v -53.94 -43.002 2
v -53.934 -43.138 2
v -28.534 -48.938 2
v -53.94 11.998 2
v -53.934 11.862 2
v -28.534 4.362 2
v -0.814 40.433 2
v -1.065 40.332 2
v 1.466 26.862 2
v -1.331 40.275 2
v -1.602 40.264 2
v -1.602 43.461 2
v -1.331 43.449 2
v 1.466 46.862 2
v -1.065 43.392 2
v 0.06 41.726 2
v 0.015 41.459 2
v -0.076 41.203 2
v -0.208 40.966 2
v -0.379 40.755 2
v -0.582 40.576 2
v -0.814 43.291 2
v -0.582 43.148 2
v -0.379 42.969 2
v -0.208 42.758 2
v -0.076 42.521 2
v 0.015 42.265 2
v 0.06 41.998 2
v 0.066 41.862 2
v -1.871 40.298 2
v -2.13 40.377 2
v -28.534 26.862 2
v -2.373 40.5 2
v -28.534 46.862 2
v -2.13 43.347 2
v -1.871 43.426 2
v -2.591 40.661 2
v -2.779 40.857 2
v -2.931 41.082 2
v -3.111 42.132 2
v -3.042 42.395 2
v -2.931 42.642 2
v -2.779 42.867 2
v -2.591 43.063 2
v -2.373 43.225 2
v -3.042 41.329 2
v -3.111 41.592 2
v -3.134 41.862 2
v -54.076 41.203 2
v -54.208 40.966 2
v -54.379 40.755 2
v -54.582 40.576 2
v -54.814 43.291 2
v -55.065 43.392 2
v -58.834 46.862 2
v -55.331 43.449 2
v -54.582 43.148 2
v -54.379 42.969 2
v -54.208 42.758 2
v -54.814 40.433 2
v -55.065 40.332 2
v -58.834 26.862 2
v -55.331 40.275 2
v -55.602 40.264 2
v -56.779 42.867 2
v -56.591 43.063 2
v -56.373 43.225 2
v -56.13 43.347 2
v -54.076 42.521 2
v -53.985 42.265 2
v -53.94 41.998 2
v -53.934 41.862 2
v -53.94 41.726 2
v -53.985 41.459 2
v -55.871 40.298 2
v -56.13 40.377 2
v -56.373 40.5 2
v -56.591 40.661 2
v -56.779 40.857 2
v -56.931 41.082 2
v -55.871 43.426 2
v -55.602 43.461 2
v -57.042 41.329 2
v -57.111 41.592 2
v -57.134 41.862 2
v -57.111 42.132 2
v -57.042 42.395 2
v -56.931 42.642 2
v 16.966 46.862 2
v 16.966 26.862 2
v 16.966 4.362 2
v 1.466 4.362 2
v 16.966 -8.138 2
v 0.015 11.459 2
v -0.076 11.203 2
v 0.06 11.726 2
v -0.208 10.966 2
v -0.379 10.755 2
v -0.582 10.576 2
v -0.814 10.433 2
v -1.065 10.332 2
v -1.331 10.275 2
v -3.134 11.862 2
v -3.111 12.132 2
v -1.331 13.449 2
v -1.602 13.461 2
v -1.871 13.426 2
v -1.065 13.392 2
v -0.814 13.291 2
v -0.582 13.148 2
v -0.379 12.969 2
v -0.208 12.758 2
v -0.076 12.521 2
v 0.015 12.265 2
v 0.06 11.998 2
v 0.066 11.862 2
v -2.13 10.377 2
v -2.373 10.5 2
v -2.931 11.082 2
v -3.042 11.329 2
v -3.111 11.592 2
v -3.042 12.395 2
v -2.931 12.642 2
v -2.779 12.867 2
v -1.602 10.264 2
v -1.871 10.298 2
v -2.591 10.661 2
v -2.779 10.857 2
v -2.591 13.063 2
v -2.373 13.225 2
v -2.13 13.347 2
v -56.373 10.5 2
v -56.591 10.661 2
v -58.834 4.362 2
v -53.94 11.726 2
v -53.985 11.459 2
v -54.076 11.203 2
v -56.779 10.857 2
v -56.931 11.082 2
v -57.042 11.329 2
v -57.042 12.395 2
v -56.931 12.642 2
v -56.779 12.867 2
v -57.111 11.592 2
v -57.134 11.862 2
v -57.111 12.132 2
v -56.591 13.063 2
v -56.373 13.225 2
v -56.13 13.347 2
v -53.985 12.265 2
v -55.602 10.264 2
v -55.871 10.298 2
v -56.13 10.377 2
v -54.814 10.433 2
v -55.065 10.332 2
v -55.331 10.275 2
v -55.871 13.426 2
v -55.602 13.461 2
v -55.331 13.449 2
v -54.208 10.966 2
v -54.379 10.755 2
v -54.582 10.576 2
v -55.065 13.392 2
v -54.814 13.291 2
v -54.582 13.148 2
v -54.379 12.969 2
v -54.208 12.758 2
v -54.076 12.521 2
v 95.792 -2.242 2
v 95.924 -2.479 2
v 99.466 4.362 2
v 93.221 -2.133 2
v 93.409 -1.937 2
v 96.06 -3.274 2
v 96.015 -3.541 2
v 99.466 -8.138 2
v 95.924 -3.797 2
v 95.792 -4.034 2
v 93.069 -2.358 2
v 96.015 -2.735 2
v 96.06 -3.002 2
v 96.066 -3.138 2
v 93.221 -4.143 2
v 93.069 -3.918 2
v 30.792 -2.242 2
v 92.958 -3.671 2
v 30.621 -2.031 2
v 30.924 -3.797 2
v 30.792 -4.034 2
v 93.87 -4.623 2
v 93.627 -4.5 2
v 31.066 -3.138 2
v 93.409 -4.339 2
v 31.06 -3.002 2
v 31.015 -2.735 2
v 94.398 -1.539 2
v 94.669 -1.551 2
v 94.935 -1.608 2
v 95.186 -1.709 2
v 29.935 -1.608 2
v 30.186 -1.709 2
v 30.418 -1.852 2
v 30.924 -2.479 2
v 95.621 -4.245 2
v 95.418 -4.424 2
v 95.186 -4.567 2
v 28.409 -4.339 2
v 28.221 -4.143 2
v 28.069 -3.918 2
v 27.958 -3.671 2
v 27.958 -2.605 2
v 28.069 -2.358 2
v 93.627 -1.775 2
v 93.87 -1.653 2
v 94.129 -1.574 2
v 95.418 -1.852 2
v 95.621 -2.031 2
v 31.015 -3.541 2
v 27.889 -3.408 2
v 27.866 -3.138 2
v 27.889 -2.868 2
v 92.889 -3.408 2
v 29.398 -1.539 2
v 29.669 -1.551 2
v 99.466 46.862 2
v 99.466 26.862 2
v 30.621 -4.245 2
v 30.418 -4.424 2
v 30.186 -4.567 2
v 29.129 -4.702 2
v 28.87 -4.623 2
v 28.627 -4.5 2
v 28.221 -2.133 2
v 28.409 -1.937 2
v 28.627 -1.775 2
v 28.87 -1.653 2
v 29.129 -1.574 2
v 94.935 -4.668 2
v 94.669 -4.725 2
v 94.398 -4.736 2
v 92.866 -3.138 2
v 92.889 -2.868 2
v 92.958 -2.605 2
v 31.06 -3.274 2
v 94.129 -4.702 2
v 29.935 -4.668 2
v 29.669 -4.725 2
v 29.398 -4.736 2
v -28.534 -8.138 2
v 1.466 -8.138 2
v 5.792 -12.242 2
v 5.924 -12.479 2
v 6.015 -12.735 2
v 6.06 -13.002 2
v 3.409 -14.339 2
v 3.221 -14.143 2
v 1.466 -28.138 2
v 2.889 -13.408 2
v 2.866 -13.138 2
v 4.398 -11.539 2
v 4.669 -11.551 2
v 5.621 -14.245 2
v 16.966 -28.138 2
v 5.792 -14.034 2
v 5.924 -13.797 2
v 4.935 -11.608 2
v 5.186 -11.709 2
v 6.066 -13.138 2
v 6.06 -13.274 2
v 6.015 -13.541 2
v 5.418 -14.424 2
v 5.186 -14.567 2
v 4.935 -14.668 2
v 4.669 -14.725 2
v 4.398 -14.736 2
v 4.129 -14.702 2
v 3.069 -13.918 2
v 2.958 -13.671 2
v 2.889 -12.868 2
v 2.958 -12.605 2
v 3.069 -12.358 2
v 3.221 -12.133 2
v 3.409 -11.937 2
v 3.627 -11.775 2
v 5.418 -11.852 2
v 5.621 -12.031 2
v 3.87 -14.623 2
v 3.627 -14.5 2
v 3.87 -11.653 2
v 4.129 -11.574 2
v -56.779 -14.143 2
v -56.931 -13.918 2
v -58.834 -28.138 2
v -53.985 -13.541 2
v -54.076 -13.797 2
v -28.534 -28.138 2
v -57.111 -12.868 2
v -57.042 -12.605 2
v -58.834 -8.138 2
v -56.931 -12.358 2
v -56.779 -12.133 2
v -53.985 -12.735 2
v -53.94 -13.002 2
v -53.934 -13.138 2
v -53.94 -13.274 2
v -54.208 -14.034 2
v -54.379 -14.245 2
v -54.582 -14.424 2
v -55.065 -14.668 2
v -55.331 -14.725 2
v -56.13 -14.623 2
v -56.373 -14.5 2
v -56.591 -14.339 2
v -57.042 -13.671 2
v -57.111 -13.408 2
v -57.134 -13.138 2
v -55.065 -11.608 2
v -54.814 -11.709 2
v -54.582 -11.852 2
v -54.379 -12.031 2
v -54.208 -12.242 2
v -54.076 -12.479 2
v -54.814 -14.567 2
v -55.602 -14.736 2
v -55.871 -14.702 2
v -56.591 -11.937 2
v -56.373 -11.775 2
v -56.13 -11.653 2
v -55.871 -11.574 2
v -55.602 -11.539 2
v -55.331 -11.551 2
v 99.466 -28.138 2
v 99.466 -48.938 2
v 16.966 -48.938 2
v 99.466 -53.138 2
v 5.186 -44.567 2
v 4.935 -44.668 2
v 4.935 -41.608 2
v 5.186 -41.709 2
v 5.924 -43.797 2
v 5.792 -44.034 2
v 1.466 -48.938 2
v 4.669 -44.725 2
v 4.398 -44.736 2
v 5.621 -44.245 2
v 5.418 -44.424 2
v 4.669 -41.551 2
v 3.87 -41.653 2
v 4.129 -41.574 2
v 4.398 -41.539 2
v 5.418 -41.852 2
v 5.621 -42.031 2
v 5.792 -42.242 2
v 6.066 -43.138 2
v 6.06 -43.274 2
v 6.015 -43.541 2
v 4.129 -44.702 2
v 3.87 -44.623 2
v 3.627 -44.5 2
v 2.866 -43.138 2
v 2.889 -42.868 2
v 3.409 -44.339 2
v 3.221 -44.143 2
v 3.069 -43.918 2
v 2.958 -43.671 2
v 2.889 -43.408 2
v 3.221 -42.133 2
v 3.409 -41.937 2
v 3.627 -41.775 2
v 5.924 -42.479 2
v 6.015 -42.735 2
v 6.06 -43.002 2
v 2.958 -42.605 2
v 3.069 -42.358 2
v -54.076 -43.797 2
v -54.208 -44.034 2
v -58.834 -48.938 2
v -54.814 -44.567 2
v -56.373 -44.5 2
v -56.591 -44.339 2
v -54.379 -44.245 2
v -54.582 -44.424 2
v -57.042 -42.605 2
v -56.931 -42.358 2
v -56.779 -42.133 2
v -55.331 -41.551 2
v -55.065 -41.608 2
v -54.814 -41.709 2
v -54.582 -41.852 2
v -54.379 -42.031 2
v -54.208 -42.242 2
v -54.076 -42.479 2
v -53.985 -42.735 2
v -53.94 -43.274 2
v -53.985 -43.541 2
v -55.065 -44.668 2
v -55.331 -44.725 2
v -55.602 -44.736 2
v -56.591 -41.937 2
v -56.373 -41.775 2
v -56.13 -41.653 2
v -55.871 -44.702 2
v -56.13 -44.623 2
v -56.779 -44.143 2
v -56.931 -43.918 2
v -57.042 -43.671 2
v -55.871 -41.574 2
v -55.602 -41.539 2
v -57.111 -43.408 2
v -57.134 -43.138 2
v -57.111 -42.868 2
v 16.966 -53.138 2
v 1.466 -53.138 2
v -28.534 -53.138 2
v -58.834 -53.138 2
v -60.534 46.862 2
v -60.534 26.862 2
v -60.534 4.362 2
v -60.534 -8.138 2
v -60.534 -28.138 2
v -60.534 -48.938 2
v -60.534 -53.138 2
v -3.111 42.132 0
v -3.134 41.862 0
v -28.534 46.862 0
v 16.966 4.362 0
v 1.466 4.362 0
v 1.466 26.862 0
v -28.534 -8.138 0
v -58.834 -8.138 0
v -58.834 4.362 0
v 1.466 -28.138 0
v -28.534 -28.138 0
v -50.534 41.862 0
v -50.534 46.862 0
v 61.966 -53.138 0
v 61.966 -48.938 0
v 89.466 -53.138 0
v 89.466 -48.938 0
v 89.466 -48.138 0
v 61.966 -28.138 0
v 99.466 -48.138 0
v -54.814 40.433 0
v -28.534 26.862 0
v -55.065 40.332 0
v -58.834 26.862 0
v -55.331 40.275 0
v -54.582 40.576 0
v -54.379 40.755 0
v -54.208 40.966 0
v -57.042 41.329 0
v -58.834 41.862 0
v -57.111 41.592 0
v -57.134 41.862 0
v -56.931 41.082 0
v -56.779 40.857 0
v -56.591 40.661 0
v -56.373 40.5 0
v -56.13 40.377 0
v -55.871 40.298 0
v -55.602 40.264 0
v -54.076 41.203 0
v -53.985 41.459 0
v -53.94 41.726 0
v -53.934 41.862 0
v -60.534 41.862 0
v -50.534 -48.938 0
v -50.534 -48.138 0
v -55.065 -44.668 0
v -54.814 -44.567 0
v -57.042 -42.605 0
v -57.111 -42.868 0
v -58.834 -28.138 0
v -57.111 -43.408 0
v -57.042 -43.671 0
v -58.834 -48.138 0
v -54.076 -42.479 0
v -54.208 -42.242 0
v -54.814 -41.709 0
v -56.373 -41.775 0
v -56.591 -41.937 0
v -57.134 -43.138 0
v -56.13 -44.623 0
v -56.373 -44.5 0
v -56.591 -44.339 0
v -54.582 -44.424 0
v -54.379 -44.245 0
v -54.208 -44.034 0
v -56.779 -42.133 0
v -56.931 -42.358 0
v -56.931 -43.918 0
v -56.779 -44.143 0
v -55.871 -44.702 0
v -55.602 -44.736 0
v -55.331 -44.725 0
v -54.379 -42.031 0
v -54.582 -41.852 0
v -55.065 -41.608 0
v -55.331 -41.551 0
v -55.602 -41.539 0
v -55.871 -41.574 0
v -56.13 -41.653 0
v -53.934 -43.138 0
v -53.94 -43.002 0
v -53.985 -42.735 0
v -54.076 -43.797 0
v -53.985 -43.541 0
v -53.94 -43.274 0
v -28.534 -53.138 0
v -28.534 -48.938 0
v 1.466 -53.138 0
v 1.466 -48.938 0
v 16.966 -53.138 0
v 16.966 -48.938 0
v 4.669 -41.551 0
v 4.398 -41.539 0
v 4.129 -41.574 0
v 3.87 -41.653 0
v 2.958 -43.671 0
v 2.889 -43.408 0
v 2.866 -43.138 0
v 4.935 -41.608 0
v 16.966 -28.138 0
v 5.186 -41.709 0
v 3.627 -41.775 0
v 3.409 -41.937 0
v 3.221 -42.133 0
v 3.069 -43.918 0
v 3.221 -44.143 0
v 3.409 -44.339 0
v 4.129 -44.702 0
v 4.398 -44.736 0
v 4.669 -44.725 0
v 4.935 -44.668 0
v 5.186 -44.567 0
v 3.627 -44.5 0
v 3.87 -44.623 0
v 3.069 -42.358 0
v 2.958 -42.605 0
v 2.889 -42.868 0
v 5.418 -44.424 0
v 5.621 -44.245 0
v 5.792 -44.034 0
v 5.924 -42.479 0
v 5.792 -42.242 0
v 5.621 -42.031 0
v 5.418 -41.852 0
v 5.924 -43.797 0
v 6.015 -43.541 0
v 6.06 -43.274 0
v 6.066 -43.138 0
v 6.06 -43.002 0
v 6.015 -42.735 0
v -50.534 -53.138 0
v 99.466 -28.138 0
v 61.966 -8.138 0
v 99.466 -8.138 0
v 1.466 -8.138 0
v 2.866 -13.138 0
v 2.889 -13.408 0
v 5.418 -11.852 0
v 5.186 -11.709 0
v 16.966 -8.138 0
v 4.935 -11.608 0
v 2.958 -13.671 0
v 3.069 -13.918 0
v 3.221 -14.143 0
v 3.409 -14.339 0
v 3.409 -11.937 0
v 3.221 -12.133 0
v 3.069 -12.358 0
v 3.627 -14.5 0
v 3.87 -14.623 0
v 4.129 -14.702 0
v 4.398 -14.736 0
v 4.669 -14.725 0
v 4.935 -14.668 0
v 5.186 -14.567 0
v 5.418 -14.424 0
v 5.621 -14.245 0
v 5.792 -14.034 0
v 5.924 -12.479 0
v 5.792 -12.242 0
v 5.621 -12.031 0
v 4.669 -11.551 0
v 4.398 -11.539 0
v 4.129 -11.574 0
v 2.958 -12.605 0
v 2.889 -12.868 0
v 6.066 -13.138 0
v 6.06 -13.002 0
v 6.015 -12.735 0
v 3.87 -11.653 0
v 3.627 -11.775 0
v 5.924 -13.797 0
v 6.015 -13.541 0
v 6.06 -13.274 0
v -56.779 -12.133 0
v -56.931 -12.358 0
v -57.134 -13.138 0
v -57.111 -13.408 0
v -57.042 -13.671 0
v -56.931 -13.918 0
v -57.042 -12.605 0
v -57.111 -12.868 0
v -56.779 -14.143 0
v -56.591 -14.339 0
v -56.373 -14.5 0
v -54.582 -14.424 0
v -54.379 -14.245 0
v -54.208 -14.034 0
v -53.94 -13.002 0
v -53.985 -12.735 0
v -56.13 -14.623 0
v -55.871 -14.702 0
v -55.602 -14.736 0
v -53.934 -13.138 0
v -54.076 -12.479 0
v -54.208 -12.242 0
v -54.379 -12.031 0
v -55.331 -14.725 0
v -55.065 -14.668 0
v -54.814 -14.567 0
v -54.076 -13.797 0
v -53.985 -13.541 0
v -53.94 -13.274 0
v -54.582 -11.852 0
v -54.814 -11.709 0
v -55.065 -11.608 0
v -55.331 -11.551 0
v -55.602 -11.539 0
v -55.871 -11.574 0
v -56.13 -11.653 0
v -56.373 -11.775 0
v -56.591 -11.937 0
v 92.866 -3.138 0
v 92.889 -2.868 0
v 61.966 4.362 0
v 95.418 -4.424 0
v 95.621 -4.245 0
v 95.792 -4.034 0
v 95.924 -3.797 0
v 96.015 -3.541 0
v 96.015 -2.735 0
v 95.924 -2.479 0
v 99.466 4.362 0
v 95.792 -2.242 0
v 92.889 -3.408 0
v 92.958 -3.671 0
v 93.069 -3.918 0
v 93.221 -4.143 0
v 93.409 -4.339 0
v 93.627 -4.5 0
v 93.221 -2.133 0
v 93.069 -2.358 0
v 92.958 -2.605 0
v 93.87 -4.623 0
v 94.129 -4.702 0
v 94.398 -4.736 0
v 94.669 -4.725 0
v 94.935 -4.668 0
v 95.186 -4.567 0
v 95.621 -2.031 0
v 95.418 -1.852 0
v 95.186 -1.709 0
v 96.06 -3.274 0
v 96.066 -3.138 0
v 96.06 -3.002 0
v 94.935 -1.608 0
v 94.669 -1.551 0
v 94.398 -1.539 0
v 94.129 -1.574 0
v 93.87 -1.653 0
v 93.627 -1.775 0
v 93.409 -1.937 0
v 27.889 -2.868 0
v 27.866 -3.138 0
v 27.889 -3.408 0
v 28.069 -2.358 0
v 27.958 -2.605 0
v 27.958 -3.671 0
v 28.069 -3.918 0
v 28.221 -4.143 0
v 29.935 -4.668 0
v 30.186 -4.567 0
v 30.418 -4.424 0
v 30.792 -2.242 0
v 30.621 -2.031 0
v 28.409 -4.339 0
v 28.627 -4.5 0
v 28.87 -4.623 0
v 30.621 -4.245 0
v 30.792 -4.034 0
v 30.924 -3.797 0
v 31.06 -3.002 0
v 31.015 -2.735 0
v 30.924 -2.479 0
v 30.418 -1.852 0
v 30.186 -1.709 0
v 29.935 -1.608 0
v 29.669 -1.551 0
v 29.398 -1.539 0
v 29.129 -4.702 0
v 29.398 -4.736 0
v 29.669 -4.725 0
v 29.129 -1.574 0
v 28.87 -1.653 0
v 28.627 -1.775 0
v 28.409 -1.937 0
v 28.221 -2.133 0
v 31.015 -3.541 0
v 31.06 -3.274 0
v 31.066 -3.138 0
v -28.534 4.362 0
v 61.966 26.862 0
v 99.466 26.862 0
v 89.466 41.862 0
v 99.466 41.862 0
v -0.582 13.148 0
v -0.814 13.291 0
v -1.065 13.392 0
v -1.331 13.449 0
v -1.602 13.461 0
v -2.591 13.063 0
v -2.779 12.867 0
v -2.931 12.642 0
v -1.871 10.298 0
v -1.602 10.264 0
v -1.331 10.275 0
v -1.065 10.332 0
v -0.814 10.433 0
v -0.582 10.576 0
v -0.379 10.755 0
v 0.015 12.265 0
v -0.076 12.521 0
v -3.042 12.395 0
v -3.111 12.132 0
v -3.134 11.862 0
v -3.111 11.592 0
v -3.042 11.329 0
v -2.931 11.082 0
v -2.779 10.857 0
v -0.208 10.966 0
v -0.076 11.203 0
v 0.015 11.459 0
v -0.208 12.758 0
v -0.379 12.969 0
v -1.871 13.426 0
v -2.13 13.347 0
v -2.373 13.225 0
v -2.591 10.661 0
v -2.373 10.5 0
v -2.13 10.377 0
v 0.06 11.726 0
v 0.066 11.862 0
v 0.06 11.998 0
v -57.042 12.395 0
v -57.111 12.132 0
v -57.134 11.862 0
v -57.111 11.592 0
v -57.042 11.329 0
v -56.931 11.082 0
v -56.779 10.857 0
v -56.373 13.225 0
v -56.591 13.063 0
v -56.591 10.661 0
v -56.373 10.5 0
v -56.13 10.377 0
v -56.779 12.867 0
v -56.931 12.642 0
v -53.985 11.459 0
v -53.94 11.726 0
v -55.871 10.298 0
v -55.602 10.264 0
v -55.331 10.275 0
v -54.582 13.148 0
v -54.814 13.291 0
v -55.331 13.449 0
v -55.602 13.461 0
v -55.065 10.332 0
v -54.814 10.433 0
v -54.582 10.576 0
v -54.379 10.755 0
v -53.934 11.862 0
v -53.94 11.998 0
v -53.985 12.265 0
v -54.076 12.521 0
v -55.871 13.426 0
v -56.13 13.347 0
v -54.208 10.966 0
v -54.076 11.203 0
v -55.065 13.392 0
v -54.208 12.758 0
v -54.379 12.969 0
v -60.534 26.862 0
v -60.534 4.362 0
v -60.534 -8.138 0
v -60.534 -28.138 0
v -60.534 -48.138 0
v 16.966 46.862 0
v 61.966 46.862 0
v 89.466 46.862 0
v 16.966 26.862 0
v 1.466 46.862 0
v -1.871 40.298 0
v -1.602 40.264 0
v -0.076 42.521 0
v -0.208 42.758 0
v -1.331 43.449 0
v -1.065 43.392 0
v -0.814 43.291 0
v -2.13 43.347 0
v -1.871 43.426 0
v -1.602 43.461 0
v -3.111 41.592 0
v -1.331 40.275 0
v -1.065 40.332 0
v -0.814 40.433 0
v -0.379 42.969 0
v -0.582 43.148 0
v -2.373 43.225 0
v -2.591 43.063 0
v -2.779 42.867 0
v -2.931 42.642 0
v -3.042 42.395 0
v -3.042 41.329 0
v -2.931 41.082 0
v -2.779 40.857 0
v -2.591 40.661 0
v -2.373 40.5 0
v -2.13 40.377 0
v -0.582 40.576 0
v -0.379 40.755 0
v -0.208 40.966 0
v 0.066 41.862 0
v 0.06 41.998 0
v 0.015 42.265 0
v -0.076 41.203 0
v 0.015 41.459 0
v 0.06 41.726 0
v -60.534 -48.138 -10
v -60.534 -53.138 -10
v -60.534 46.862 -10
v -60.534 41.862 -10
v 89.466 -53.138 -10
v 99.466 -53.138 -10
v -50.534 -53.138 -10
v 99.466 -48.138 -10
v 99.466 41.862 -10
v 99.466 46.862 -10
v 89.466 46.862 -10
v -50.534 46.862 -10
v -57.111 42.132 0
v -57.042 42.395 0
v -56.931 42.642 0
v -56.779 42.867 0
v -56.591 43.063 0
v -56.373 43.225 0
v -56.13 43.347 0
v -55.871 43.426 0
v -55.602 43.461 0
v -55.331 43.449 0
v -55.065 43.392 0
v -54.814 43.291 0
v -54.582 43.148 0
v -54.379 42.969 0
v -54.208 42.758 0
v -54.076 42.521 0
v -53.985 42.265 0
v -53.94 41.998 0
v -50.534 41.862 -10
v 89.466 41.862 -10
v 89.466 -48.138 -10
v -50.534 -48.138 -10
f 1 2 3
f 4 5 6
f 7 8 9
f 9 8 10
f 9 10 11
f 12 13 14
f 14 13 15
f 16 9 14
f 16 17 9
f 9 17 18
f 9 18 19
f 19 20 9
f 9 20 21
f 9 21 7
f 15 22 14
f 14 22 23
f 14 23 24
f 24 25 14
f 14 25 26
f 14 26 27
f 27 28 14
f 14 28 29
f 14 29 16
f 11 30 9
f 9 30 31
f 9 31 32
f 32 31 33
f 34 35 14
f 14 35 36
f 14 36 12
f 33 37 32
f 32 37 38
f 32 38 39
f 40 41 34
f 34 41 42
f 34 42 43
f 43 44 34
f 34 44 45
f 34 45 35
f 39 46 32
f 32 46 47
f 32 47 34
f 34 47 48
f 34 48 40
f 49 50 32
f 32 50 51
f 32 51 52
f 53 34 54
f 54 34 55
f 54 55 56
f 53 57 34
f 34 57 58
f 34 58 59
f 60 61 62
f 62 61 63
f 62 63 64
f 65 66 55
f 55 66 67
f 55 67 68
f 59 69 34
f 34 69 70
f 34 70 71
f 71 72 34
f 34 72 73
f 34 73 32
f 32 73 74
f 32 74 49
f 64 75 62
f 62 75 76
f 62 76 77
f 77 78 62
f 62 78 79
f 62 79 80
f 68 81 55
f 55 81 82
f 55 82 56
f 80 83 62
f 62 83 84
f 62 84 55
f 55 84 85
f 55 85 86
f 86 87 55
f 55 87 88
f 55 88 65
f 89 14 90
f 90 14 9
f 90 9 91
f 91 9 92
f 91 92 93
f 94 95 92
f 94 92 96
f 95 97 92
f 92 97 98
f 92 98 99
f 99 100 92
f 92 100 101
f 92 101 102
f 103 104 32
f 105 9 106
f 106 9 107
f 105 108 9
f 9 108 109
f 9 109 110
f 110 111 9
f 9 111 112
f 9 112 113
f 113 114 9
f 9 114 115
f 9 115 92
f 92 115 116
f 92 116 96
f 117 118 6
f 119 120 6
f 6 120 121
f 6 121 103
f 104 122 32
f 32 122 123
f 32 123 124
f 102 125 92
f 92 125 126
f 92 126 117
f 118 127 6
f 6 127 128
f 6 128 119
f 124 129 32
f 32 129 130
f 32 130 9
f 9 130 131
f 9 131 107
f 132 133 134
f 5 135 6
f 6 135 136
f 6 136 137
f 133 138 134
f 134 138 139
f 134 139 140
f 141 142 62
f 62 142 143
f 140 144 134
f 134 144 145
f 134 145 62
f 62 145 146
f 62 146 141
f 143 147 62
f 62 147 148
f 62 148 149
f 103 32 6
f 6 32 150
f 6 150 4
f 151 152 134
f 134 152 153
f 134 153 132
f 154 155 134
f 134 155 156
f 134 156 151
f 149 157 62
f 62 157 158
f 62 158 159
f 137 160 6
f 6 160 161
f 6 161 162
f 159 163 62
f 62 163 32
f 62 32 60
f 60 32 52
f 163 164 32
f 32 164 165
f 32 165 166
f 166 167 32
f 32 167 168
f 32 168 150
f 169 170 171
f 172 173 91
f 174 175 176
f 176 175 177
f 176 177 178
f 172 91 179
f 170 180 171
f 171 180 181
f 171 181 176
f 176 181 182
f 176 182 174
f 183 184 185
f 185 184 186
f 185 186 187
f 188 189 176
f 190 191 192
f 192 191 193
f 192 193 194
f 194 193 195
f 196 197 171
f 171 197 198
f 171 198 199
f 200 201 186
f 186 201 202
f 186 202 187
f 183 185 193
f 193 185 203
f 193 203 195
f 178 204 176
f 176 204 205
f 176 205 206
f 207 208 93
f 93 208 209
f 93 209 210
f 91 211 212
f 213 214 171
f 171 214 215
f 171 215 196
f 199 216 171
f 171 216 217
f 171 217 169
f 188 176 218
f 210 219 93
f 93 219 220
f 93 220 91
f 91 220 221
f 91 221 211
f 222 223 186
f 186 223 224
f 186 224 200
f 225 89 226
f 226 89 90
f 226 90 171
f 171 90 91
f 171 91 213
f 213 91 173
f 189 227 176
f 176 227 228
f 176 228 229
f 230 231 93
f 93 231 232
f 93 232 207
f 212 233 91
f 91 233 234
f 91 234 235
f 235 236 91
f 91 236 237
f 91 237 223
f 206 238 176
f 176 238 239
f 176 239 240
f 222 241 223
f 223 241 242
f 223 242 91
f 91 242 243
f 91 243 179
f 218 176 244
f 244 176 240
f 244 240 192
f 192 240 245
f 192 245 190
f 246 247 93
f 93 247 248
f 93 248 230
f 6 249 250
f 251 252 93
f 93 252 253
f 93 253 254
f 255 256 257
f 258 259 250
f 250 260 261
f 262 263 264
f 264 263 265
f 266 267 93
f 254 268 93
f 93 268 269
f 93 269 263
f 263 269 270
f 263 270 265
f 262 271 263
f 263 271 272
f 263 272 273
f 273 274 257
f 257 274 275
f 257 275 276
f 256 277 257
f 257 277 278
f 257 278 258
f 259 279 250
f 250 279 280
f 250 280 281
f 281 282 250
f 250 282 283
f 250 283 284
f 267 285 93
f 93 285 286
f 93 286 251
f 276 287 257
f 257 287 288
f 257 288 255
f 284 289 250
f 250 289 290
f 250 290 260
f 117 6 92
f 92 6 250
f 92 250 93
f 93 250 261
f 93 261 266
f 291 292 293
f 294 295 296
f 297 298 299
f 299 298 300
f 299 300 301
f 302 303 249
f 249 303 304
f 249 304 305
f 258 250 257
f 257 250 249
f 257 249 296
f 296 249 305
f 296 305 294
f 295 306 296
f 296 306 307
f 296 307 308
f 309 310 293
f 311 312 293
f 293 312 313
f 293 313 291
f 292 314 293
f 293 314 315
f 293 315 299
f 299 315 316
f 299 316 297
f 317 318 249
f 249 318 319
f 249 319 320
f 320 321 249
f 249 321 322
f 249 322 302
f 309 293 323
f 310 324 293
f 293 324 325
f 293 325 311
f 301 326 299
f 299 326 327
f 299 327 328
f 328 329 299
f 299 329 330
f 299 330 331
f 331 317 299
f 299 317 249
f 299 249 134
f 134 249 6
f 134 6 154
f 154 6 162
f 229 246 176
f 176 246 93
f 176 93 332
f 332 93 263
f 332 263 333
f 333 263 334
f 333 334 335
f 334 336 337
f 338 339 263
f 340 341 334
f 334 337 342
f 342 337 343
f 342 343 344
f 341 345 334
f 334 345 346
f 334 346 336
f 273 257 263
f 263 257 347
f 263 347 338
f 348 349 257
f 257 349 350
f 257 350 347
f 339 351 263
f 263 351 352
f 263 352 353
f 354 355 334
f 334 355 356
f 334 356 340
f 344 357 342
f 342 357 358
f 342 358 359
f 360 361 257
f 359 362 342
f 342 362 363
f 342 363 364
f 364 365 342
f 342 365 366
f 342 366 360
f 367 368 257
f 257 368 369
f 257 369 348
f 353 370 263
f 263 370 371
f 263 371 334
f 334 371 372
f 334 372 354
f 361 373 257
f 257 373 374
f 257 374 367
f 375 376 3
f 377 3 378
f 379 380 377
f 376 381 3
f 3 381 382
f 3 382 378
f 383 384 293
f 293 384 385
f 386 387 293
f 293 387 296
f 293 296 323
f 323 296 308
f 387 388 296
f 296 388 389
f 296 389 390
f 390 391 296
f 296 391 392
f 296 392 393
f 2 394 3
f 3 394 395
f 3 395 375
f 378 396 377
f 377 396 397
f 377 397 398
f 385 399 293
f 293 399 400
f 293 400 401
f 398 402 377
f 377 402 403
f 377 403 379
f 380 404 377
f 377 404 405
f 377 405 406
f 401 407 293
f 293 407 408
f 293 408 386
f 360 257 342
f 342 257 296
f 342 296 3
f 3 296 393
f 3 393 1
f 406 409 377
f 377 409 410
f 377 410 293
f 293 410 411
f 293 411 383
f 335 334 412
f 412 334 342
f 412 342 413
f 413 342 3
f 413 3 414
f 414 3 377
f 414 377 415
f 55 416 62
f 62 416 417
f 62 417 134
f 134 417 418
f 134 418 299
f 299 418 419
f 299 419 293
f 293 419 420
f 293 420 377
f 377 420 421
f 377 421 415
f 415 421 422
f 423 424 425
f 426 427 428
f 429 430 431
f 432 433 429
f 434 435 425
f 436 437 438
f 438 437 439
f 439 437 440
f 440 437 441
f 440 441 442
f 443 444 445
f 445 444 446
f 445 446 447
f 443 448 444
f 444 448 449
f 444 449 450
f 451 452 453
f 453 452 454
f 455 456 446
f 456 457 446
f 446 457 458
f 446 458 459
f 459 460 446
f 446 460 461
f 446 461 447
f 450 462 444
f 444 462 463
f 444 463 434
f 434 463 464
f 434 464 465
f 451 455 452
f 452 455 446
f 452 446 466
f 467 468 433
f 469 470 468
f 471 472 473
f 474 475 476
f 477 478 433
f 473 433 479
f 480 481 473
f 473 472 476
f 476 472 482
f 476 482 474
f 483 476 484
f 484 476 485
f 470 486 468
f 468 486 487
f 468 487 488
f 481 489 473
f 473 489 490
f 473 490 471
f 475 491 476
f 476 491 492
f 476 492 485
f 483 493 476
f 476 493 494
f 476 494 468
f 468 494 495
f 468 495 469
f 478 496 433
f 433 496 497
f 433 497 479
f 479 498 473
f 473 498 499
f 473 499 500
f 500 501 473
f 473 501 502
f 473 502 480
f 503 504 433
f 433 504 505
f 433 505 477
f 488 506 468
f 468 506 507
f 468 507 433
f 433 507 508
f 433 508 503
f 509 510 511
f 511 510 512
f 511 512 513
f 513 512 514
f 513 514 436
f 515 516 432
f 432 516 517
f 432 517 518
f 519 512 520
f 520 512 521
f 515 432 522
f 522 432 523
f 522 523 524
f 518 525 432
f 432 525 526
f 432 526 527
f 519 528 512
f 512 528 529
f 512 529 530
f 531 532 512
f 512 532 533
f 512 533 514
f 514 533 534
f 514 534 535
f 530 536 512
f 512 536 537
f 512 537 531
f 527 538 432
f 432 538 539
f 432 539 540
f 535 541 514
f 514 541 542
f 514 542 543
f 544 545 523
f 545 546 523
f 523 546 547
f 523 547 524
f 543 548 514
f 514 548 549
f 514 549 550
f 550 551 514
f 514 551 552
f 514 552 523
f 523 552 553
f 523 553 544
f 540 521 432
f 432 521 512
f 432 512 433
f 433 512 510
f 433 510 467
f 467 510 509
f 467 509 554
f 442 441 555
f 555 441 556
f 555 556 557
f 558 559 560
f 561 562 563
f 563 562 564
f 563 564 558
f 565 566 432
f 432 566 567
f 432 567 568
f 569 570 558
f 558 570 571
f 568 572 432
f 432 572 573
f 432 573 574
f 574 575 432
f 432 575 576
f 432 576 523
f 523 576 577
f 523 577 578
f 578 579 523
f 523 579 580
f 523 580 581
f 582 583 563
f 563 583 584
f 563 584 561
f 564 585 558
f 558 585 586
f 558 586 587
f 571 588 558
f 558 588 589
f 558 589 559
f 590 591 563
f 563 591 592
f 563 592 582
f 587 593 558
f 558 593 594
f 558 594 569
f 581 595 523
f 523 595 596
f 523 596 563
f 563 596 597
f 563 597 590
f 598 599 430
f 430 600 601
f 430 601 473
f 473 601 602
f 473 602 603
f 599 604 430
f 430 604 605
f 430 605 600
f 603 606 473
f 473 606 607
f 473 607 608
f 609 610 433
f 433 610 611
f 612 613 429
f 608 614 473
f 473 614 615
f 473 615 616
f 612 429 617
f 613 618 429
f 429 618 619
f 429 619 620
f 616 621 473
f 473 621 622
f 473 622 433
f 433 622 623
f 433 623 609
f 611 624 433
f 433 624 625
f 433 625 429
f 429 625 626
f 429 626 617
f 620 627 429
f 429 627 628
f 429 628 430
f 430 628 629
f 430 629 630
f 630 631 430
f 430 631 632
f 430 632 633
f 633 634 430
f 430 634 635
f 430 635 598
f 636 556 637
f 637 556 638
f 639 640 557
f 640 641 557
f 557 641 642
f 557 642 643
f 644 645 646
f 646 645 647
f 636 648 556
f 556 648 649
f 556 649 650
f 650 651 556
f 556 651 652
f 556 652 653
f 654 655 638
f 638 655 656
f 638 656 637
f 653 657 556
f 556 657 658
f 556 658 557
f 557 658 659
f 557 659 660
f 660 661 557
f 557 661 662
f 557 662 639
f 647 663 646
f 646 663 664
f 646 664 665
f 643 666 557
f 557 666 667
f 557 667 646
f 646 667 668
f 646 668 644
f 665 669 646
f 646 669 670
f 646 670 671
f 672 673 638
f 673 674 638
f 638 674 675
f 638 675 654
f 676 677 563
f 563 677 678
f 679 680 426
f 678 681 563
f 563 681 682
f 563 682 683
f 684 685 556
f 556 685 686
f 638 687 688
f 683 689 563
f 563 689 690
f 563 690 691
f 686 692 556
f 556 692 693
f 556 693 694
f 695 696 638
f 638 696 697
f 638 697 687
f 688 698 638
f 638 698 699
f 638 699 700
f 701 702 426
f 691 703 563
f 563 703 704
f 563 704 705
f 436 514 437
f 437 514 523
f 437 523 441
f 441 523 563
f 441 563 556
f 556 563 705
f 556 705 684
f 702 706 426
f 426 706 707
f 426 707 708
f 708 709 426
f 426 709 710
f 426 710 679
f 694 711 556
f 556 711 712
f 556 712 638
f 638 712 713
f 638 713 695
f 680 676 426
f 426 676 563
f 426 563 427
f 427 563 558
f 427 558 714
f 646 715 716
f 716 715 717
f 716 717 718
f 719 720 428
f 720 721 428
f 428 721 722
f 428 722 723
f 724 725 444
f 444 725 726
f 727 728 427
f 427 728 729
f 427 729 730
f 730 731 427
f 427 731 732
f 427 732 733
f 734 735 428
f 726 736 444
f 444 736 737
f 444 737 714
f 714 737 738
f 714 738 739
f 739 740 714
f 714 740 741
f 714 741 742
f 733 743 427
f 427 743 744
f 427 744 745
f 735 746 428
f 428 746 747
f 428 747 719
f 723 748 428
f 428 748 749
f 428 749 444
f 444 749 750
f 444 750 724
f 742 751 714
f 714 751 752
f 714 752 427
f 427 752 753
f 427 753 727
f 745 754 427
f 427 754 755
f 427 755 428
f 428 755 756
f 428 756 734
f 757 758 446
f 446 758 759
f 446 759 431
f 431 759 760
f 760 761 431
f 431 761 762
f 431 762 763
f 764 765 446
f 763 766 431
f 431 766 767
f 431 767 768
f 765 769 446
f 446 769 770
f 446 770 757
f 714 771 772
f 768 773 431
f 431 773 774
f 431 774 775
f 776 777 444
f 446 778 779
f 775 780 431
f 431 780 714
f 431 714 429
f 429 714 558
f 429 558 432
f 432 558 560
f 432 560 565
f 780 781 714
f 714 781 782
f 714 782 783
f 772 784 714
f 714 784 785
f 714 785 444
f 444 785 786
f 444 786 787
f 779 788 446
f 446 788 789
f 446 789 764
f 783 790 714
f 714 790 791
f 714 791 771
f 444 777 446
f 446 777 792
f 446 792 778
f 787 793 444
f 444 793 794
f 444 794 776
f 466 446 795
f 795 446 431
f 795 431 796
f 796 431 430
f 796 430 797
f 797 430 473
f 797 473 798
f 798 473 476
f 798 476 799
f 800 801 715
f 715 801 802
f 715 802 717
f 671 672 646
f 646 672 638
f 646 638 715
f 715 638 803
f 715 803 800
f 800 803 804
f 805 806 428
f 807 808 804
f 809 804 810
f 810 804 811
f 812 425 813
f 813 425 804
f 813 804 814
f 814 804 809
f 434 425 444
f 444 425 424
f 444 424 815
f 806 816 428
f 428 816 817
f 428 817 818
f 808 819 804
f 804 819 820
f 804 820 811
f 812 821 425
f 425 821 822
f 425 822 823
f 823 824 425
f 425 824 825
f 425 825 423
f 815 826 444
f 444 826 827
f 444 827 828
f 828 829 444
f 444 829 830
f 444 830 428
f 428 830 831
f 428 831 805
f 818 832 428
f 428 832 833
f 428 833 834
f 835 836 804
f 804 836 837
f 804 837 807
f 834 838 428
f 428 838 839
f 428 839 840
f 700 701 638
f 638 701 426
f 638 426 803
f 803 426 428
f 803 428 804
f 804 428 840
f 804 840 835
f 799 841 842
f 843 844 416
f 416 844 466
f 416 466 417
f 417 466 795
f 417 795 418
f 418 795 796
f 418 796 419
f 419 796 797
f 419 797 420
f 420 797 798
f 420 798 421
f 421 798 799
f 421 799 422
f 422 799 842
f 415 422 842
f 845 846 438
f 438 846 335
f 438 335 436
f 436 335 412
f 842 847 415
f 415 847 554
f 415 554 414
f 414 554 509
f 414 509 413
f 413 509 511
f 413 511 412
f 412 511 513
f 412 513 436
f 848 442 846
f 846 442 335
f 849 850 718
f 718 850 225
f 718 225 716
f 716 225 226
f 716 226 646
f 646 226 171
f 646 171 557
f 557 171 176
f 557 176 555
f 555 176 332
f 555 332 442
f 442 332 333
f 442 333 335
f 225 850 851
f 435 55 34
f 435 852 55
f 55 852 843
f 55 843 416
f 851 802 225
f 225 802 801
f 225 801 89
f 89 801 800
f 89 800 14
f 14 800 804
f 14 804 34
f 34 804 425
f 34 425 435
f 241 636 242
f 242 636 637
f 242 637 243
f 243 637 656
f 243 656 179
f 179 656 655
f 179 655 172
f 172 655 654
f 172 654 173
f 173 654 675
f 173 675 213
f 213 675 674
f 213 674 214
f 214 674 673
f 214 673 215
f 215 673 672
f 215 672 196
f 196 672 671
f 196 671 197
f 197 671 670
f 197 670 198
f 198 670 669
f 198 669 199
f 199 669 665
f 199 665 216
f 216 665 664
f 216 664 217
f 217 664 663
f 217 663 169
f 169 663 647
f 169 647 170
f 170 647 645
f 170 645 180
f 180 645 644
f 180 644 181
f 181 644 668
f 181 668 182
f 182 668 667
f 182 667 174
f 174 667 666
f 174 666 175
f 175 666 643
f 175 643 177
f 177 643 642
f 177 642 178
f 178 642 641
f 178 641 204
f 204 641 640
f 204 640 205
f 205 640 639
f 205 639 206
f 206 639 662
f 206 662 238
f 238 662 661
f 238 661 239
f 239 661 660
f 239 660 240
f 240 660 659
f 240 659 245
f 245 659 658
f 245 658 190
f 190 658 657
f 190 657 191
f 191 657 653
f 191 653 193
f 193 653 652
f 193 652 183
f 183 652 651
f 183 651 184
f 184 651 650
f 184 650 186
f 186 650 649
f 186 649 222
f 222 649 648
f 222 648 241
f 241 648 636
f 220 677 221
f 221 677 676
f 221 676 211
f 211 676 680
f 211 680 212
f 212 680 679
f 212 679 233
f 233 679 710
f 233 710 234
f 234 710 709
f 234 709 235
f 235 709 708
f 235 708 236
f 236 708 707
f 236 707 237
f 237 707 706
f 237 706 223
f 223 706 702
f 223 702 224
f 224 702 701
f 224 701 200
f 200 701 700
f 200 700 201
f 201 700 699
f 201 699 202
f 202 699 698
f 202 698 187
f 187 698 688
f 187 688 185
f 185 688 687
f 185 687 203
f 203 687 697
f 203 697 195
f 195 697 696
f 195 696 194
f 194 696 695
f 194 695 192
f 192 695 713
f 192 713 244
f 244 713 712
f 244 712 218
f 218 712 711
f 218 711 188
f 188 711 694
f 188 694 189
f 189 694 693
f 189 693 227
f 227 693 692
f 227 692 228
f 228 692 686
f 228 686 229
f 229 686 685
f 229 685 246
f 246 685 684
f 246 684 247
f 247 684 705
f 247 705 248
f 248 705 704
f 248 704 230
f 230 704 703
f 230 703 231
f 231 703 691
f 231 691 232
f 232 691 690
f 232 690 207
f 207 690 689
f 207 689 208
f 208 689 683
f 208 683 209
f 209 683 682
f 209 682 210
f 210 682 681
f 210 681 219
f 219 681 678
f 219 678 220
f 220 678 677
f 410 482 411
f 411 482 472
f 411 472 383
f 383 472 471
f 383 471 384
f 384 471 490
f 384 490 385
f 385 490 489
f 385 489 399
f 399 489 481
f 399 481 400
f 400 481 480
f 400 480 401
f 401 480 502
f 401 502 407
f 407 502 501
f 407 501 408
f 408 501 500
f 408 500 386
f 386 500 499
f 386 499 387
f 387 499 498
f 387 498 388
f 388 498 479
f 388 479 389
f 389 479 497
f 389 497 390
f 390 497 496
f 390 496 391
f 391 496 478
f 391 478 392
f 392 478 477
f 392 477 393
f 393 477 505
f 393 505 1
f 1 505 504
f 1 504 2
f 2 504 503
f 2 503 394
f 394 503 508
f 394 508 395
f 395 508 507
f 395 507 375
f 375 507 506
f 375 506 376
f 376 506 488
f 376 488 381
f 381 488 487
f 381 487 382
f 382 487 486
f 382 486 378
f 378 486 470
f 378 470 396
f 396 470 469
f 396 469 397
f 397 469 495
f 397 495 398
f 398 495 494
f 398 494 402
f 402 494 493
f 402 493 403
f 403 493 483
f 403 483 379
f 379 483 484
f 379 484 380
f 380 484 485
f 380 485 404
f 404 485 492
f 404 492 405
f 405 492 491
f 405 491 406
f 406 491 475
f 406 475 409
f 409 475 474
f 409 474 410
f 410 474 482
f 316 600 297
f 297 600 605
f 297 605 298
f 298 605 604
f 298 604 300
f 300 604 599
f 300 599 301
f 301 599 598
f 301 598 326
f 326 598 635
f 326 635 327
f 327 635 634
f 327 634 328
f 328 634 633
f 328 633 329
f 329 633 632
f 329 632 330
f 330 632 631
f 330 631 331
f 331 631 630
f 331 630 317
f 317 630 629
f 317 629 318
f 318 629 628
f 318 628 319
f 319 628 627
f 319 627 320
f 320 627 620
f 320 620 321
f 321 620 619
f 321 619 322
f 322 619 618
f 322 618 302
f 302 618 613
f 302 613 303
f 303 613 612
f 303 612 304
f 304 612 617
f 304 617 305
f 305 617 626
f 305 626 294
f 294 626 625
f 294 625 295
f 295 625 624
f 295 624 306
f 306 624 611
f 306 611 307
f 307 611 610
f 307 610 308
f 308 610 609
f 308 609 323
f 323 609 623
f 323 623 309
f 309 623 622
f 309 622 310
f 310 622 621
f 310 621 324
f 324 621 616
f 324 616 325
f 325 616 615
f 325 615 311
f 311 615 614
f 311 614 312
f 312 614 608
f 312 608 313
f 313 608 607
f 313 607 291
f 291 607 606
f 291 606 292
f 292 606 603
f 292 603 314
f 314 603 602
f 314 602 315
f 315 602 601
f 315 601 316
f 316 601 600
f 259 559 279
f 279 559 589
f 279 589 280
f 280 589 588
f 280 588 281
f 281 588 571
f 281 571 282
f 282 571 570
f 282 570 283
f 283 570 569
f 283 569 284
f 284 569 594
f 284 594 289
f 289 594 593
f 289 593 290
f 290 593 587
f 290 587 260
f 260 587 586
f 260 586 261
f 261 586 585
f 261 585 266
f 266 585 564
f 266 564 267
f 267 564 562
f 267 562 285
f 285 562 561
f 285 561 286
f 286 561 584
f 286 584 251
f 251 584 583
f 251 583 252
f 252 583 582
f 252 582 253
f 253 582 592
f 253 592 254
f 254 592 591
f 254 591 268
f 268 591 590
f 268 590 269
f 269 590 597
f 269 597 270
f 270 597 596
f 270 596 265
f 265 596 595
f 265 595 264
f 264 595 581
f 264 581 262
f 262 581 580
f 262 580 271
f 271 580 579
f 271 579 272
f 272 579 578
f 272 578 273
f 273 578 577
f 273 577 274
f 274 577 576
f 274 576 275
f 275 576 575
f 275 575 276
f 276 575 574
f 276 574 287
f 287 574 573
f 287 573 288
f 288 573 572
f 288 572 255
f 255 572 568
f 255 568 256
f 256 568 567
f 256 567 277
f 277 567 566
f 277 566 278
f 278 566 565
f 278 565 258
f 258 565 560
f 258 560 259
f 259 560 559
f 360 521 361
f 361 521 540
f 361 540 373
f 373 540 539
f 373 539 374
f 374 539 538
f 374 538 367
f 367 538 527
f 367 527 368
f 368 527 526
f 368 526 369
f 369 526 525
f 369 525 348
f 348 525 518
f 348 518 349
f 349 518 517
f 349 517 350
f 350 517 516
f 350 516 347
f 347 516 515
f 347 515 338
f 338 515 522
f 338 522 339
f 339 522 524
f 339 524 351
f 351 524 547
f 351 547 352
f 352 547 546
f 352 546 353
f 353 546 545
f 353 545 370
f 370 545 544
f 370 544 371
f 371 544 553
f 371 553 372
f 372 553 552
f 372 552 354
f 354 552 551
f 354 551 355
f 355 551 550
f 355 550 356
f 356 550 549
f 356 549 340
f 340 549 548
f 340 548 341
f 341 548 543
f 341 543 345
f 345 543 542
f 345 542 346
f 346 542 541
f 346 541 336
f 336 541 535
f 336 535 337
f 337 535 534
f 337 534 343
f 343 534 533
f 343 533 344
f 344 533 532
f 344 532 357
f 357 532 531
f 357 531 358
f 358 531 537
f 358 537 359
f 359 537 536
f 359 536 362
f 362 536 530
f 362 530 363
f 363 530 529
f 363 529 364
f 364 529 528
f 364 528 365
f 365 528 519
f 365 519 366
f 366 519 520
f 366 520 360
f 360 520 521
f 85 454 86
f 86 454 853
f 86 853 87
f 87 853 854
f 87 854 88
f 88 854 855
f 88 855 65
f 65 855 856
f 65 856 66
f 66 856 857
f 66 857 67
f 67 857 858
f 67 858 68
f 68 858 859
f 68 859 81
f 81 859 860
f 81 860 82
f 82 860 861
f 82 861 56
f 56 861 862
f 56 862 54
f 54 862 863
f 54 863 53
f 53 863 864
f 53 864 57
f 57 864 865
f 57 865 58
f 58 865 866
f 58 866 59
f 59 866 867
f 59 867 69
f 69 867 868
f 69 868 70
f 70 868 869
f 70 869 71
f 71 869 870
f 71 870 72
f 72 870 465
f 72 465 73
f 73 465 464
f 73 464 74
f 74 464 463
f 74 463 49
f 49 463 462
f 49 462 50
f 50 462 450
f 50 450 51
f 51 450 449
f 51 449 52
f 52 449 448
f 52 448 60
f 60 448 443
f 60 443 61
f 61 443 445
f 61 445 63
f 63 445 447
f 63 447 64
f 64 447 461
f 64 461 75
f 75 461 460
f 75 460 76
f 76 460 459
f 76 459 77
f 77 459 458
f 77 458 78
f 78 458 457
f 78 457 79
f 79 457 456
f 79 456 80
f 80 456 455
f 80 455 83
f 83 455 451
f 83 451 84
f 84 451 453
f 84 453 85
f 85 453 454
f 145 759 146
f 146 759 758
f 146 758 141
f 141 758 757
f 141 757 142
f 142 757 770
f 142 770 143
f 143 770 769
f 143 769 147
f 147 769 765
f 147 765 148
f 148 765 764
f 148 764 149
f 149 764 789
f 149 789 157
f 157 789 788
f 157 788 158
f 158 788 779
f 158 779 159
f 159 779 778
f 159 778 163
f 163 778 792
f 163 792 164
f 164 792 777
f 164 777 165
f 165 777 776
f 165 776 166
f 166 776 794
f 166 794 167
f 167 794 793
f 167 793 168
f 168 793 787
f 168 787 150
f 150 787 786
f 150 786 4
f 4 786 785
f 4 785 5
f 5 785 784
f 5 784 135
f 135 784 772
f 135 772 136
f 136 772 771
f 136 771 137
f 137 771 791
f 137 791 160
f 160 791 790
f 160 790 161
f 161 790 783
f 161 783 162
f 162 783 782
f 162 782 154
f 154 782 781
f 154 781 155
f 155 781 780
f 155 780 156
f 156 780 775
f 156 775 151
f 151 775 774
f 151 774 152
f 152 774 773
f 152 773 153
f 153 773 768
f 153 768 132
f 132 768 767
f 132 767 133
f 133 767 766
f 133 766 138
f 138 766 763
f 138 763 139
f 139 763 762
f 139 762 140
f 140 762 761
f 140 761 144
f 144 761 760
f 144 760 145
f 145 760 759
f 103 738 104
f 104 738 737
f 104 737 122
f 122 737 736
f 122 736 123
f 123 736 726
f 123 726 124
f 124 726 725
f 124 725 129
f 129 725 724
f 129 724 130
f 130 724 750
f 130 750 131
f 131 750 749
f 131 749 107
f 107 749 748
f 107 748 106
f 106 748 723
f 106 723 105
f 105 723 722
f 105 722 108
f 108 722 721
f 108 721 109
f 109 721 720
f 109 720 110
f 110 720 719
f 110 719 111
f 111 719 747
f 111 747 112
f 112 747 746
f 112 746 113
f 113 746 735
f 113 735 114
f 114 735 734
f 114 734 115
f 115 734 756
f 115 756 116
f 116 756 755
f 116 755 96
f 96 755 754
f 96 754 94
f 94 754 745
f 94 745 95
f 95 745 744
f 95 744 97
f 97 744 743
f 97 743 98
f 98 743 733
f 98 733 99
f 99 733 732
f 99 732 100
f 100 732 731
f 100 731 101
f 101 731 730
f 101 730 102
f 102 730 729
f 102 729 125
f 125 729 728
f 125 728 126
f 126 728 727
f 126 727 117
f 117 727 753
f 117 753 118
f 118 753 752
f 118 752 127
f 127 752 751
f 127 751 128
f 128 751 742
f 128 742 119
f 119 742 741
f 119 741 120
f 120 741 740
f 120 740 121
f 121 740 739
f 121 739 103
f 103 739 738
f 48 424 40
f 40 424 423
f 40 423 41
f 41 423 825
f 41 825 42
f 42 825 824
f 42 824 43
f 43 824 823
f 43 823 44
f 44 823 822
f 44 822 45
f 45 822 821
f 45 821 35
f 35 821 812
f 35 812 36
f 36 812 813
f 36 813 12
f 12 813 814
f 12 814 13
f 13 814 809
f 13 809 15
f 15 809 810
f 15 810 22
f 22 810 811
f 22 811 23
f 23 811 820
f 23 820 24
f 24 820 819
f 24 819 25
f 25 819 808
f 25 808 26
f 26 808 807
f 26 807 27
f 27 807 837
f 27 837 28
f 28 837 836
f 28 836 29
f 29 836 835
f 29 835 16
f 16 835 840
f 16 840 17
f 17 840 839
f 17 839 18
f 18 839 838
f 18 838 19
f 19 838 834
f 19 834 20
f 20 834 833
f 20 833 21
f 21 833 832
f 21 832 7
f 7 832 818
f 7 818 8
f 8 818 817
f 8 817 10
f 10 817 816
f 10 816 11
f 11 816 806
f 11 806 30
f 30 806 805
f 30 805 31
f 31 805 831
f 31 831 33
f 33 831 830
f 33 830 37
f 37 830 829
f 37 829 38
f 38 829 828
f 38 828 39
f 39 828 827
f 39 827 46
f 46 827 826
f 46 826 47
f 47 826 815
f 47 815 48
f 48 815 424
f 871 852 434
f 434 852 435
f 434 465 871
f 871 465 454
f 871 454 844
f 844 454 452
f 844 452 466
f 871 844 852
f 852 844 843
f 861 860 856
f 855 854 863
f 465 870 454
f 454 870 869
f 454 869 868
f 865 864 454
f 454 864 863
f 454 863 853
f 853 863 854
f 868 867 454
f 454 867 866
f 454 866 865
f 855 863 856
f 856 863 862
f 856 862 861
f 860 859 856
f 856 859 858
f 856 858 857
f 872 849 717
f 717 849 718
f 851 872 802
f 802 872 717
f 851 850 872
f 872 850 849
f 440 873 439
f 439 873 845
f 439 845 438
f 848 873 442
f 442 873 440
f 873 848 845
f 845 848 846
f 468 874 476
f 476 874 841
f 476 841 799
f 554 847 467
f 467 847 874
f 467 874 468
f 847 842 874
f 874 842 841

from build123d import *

# Parameters (mm, degrees)
SKETCH_1_W      = 160
SKETCH_1_H      = 100
SKETCH_1_R      = 1.6
EXTRUDE_1_DEPTH = 2
EXTRUDE_START   = -2
SKETCH_2_W      = 10
SKETCH_2_H      = 5
EXTRUDE_2_DEPTH = 10


with BuildPart() as part:
    # 草图1 → 凸台-拉伸1 (new body)
    with BuildSketch(Plane.XY):
        with Locations((19.466155548, -3.137913989)):
            Rectangle(SKETCH_1_W, SKETCH_1_H)
        with Locations((94.466155548, -3.137913989)):
            Circle(SKETCH_1_R, mode=Mode.SUBTRACT)
        with Locations((29.466155548, -3.137913989)):
            Circle(SKETCH_1_R, mode=Mode.SUBTRACT)
        with Locations((-55.533844452, -43.137913989)):
            Circle(SKETCH_1_R, mode=Mode.SUBTRACT)
        with Locations((-55.533844452, -13.137913989)):
            Circle(SKETCH_1_R, mode=Mode.SUBTRACT)
        with Locations((4.466155548, -13.137913989)):
            Circle(SKETCH_1_R, mode=Mode.SUBTRACT)
        with Locations((4.466155548, -43.137913989)):
            Circle(SKETCH_1_R, mode=Mode.SUBTRACT)
        with Locations((-55.533844452, 41.862086011)):
            Circle(SKETCH_1_R, mode=Mode.SUBTRACT)
        with Locations((-55.533844452, 11.862086011)):
            Circle(SKETCH_1_R, mode=Mode.SUBTRACT)
        with Locations((-1.533844452, 11.862086011)):
            Circle(SKETCH_1_R, mode=Mode.SUBTRACT)
        with Locations((-1.533844452, 41.862086011)):
            Circle(SKETCH_1_R, mode=Mode.SUBTRACT)
    extrude(amount=EXTRUDE_1_DEPTH)

    # 草图2 → 凸台-拉伸2 (add)
    with BuildSketch(Plane.XY.offset(2).offset(EXTRUDE_START)):
        with Locations((-55.533844452, 44.362086011)):
            Rectangle(SKETCH_2_W, SKETCH_2_H)
        with Locations((94.466155548, 44.362086011)):
            Rectangle(SKETCH_2_W, SKETCH_2_H)
        with Locations((94.466155548, -50.637913989)):
            Rectangle(SKETCH_2_W, SKETCH_2_H)
        with Locations((-55.533844452, -50.637913989)):
            Rectangle(SKETCH_2_W, SKETCH_2_H)
    extrude(amount=-EXTRUDE_2_DEPTH)


solid = part.part
